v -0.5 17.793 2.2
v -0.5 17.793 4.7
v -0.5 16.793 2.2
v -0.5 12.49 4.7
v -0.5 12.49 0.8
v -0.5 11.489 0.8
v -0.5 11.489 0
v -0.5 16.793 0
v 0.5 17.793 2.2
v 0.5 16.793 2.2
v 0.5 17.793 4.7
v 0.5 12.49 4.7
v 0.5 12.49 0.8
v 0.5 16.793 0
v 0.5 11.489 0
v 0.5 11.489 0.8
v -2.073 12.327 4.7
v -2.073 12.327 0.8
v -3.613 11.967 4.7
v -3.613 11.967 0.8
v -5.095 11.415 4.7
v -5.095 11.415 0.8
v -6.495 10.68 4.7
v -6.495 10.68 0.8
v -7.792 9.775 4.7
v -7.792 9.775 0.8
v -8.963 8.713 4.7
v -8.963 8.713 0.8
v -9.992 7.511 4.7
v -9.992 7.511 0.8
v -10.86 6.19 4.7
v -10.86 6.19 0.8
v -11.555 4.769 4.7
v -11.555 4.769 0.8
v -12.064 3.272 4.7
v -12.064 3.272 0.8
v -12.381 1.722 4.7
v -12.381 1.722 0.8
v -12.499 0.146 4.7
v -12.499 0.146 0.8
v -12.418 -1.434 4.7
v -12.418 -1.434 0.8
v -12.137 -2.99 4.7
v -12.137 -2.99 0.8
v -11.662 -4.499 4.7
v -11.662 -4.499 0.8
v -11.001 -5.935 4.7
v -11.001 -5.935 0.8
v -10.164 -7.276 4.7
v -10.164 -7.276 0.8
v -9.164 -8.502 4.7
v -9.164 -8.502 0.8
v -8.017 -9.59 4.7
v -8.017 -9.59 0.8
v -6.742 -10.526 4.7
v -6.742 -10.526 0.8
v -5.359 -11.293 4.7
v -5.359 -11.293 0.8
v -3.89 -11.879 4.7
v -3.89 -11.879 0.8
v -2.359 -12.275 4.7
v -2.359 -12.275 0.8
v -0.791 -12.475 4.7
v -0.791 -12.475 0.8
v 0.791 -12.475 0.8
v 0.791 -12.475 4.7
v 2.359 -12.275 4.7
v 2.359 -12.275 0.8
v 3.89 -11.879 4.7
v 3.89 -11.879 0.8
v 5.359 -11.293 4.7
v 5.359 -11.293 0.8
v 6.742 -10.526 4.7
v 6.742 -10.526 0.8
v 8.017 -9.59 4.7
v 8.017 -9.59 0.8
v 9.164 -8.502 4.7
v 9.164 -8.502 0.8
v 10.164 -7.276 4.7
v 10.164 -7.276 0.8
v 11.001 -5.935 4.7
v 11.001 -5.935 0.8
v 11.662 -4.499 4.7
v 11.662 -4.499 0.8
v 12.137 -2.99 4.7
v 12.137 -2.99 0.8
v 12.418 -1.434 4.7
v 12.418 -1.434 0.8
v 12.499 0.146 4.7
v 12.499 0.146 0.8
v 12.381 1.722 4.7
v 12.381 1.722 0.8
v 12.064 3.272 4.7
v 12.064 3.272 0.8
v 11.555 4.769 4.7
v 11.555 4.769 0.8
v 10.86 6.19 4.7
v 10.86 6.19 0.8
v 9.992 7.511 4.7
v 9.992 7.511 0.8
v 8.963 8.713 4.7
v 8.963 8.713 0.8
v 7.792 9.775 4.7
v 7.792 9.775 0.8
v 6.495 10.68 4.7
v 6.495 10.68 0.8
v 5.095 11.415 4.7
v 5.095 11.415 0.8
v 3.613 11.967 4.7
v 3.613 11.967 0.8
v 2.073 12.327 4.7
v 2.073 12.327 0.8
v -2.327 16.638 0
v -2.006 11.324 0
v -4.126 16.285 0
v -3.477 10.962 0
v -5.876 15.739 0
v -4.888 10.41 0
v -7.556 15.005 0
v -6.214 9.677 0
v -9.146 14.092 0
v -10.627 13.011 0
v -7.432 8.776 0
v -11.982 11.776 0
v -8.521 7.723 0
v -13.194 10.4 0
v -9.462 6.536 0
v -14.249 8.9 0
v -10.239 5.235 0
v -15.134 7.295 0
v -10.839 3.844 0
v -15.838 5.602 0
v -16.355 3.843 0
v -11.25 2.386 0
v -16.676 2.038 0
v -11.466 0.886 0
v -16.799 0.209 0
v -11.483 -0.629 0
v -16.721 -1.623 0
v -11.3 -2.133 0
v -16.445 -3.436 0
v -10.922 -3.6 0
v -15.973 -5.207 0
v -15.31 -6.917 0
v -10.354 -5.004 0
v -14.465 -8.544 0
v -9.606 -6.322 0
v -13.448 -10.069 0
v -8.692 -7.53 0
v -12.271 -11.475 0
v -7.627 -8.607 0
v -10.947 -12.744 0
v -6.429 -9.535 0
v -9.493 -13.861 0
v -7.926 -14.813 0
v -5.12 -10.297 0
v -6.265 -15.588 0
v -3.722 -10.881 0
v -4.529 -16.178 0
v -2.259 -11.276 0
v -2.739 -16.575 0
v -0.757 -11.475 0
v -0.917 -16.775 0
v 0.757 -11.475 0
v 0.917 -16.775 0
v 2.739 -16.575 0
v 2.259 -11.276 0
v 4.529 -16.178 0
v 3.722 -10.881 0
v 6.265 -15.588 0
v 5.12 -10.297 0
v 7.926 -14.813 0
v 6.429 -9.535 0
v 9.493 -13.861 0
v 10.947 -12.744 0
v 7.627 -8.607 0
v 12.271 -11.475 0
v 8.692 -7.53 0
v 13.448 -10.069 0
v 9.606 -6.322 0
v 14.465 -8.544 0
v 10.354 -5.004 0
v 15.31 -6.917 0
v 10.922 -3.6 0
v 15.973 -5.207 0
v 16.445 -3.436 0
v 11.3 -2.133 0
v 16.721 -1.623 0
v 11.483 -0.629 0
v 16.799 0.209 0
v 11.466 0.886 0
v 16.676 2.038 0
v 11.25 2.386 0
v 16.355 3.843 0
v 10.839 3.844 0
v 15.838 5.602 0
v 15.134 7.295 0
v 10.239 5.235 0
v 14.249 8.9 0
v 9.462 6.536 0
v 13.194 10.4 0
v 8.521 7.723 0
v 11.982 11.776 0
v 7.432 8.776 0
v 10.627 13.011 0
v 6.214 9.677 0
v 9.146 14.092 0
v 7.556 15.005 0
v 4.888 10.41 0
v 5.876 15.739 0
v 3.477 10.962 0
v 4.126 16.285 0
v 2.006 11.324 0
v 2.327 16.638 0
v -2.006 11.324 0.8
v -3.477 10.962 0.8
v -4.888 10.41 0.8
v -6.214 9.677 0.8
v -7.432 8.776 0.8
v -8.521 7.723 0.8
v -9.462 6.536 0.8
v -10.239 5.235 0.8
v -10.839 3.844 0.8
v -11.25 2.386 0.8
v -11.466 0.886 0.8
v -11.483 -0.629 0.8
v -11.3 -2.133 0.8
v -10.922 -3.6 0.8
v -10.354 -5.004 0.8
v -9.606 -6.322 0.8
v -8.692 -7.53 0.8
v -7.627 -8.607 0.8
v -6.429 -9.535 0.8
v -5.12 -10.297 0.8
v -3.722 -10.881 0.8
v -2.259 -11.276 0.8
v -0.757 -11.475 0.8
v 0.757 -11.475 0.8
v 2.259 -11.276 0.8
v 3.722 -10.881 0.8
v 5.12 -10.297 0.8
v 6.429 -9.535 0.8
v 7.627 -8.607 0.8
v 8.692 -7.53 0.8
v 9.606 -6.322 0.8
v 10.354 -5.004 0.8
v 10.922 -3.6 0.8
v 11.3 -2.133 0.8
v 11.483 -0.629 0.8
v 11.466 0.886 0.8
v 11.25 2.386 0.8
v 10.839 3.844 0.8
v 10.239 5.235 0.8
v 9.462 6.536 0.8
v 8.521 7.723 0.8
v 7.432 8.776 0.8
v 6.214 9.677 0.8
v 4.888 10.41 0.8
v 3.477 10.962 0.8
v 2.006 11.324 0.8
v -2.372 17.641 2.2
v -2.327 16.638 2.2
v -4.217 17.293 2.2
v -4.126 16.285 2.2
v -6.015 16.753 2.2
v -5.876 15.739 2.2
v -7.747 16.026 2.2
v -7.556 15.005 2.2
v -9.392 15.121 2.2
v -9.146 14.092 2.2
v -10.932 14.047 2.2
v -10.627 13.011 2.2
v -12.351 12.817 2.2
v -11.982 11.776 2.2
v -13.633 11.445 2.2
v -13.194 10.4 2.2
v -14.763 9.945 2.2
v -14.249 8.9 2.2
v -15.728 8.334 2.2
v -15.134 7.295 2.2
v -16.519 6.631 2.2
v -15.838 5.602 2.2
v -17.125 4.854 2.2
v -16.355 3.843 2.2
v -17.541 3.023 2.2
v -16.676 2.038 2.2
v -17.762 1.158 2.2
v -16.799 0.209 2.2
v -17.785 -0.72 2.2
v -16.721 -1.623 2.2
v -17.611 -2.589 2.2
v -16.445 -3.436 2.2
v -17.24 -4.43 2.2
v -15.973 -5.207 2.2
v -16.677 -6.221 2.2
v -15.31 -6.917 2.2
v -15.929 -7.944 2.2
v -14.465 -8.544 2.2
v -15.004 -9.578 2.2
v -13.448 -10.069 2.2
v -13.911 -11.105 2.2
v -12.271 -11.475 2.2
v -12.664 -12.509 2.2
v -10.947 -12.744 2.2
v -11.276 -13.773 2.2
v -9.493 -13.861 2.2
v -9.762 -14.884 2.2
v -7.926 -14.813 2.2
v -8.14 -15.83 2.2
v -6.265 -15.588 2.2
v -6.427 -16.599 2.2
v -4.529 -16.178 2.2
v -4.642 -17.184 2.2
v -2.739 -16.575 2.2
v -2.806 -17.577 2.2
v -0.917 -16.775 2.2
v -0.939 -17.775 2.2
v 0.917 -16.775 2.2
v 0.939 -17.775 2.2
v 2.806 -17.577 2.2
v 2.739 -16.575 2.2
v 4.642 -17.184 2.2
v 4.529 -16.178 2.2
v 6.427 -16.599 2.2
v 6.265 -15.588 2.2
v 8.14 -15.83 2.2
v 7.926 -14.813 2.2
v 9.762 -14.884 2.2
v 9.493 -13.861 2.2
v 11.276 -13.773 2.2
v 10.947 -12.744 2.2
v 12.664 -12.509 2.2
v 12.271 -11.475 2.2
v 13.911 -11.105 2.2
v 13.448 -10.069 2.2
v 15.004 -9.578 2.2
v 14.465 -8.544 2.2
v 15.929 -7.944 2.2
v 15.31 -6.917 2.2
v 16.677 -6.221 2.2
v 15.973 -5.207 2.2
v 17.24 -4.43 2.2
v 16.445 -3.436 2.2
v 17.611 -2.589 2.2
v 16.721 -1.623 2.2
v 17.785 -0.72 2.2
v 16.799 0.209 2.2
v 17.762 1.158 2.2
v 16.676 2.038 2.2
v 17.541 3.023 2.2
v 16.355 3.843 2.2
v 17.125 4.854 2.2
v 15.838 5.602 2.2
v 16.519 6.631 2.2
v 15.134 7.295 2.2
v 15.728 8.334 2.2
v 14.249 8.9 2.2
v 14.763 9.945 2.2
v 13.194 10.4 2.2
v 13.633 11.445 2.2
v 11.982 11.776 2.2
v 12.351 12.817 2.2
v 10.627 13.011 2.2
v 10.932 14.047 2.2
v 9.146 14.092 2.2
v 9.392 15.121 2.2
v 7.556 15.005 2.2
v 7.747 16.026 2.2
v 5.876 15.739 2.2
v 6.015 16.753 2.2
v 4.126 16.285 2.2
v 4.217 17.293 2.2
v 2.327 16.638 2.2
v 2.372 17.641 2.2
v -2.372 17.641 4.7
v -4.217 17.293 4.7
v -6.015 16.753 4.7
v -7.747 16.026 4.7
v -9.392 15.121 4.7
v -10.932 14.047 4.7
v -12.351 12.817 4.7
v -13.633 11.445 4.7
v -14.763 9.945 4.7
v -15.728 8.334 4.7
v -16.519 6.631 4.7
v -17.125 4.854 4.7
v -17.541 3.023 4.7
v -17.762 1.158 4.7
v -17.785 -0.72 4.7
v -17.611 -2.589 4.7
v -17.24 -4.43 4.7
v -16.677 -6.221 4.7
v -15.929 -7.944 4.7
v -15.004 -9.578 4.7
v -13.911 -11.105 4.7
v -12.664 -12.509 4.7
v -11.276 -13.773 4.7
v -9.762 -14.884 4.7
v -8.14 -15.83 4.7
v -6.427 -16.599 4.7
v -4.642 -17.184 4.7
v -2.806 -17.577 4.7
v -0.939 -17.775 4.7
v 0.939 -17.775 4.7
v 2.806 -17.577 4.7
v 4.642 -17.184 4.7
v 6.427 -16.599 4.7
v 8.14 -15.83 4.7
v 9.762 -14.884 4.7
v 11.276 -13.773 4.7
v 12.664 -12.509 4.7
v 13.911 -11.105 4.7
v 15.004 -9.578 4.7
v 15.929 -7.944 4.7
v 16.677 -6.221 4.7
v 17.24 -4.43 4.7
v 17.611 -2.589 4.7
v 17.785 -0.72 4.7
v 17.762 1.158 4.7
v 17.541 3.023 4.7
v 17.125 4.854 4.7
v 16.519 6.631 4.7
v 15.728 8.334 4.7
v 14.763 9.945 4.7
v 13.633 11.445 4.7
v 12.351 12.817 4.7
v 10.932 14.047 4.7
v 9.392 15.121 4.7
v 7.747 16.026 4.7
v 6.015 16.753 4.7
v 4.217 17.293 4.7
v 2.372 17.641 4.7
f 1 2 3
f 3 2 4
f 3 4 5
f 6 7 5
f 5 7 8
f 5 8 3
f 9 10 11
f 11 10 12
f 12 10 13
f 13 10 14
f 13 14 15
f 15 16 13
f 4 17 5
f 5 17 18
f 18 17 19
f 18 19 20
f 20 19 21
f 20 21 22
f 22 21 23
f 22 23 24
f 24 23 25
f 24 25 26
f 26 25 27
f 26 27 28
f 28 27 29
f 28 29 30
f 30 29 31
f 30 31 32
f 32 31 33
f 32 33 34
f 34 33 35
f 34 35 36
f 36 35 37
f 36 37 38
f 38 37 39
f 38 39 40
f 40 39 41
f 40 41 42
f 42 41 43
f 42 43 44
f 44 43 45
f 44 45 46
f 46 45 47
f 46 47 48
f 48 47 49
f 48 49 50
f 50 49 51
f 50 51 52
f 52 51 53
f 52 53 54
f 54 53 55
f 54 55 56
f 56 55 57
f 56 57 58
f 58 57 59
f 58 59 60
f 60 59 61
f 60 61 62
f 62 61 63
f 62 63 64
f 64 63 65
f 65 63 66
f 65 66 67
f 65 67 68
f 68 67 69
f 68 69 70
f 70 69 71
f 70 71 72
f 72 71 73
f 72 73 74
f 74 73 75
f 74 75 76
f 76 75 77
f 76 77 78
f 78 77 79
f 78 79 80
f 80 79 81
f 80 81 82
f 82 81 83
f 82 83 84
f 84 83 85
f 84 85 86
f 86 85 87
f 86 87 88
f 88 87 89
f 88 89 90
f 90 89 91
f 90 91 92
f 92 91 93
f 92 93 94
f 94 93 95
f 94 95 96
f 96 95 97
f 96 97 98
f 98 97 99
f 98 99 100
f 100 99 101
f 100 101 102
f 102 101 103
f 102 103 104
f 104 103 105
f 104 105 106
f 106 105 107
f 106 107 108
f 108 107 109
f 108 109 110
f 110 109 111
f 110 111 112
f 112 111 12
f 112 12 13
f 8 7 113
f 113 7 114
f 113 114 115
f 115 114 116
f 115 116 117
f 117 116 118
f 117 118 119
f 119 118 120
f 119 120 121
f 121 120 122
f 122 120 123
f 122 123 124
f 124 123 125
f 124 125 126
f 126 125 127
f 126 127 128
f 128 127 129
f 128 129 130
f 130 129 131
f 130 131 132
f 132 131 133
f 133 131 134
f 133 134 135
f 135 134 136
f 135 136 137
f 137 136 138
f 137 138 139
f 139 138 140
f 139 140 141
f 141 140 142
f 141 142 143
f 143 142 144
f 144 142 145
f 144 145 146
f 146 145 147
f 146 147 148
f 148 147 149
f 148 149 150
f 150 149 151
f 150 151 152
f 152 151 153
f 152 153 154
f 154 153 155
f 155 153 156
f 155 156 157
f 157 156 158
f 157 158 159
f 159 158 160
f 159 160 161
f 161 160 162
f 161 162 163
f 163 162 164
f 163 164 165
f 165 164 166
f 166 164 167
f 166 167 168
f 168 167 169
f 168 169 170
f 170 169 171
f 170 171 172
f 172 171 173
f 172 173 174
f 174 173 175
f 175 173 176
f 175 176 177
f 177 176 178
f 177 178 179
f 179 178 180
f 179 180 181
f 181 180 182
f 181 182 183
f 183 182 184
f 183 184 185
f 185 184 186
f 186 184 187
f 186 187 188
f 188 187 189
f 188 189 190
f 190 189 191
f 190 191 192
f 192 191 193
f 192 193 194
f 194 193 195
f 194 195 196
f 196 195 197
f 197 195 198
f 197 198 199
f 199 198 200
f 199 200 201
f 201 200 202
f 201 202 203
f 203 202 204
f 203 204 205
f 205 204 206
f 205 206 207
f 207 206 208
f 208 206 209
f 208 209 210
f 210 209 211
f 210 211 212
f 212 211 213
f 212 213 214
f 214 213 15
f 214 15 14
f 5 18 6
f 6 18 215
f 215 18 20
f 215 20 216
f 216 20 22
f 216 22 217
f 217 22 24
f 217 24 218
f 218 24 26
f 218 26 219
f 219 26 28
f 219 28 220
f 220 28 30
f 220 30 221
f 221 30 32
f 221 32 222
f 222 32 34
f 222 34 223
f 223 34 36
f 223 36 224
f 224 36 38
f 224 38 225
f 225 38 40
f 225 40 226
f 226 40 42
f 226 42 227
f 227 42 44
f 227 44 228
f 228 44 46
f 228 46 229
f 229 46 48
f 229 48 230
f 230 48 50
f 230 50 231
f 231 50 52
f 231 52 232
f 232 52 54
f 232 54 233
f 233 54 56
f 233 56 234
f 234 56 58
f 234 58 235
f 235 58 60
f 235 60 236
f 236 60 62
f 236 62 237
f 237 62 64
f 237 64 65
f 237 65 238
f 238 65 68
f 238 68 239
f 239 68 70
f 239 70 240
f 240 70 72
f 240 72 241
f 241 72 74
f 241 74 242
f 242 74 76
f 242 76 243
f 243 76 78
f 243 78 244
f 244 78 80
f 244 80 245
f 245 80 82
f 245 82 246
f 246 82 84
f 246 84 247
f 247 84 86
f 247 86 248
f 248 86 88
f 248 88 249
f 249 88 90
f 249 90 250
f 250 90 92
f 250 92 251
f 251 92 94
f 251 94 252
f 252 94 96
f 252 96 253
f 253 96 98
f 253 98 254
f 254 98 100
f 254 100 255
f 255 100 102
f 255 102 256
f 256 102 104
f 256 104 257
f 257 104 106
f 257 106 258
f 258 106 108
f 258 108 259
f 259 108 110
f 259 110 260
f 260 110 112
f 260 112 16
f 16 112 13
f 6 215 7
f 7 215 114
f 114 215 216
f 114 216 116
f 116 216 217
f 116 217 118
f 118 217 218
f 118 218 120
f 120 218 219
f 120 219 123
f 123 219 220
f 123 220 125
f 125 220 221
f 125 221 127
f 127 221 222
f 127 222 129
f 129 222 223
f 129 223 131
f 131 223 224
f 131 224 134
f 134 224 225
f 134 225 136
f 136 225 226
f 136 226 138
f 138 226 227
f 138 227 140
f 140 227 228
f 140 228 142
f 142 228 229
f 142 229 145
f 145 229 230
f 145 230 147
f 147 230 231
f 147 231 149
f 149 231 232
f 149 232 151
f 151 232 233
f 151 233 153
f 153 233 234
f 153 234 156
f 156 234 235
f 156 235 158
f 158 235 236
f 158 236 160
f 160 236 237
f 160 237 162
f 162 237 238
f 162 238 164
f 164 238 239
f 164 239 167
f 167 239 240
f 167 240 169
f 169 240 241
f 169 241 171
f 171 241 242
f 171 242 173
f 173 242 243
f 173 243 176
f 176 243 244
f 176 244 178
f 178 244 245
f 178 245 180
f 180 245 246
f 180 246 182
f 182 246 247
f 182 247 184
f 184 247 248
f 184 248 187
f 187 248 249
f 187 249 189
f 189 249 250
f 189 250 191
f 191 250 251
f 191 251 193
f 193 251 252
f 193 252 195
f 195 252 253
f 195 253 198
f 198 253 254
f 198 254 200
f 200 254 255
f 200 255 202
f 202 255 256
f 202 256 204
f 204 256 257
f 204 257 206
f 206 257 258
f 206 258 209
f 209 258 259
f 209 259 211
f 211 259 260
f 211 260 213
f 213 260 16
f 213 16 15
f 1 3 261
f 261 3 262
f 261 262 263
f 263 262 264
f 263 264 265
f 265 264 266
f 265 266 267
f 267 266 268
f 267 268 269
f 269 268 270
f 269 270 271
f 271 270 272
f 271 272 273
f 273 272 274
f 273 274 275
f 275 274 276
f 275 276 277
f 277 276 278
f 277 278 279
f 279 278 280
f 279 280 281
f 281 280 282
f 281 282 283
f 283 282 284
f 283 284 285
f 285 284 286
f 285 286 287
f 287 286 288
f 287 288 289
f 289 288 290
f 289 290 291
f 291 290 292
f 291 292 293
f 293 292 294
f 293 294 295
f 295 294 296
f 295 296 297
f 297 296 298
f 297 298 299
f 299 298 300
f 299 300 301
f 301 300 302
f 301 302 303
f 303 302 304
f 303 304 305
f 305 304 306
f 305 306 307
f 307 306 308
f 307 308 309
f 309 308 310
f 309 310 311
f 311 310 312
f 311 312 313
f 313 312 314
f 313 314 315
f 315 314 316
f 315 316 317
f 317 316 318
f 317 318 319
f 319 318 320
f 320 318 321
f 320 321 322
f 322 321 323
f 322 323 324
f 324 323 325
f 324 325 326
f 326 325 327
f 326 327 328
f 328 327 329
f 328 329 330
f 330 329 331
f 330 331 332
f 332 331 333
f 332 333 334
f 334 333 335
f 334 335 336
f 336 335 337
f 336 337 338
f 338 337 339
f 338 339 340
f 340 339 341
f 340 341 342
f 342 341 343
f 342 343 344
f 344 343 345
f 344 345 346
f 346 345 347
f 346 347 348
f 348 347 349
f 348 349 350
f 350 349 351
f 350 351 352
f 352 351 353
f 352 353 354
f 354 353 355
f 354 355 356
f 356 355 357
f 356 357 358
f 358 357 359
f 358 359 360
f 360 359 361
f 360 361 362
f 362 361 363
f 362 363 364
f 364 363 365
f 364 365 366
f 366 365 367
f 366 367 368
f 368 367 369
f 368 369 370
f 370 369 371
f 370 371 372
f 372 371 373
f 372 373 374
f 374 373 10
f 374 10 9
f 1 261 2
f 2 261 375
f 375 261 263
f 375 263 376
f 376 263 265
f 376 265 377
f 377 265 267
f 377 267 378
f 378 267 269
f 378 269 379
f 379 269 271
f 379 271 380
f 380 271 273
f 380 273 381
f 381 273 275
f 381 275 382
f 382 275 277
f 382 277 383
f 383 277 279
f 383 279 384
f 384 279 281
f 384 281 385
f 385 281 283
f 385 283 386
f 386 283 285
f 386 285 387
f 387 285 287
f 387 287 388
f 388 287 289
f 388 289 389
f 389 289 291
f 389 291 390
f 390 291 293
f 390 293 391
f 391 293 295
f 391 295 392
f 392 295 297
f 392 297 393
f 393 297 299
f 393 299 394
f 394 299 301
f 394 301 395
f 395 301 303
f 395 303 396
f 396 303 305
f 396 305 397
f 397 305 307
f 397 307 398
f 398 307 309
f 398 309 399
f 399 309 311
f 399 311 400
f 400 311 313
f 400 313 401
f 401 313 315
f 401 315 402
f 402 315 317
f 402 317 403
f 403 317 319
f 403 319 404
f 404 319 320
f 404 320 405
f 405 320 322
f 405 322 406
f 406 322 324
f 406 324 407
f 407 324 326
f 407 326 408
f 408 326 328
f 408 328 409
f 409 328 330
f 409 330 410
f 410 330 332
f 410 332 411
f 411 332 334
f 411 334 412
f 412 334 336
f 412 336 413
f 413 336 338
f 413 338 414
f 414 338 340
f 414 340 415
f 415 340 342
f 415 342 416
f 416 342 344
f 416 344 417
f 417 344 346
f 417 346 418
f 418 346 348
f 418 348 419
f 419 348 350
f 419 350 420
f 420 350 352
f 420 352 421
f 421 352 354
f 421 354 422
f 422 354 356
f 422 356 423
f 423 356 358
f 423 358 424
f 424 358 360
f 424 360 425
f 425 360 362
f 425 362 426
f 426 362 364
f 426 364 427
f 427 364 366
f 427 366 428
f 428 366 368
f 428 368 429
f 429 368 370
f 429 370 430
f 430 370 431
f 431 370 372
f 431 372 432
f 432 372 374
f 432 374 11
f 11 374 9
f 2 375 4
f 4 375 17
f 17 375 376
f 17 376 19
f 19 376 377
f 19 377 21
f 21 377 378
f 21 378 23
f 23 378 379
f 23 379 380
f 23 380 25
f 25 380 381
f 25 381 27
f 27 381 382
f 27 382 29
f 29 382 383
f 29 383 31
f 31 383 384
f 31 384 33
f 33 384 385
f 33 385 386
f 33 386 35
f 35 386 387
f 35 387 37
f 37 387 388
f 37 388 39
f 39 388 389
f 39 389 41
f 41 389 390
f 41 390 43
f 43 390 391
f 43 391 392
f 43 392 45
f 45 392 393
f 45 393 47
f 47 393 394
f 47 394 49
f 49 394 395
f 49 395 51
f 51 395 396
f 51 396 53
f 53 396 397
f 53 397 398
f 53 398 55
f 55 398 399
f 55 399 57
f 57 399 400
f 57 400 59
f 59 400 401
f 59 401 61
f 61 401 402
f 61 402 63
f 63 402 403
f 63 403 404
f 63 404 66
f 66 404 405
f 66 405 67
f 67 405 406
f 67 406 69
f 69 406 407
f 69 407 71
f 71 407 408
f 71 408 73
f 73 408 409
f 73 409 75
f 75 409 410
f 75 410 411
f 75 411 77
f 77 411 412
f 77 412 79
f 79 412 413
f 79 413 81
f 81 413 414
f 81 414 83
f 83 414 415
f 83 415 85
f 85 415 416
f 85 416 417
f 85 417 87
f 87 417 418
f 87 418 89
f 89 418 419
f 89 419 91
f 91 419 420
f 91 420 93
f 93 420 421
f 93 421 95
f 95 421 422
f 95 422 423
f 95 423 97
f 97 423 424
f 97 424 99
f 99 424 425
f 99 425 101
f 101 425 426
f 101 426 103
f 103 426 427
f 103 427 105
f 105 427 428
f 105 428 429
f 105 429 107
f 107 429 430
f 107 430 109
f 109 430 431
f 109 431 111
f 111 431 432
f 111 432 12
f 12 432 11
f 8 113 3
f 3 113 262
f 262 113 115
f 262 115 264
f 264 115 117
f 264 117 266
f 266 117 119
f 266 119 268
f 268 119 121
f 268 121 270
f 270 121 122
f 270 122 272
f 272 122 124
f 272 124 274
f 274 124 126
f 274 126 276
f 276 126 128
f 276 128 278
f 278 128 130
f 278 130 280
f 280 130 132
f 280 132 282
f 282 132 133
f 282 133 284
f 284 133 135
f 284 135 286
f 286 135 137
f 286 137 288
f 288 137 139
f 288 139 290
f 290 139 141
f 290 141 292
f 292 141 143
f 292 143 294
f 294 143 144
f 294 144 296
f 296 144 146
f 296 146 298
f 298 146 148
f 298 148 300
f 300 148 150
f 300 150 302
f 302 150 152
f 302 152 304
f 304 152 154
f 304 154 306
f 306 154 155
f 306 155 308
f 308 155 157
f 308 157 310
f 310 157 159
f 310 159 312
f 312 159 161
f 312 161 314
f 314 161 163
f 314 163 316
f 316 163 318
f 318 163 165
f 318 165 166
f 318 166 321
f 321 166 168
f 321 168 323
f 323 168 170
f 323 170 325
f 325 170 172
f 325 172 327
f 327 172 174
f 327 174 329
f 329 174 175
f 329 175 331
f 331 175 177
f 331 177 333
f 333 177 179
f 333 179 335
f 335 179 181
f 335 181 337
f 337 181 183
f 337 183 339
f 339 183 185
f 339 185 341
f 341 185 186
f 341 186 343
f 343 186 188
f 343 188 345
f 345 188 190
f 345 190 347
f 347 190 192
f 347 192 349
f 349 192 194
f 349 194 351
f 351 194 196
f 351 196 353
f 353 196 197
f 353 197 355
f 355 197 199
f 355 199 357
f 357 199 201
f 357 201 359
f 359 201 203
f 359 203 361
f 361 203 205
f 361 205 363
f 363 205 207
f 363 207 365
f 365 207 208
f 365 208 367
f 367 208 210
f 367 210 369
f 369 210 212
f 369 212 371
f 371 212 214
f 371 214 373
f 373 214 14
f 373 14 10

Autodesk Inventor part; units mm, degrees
ref_plane "YZ Plane" through (0, 0, 0) normal (1, 0, 0) x (0, 1, 0)
ref_plane "XZ Plane" through (0, 0, 0) normal (0, 1, 0) x (-1, 0, 0)
ref_plane "XY Plane" through (0, 0, 0) normal (0, 0, 1) x (1, 0, 0)
sketch "Sketch1" plane through (0, 0, 0) normal (0, 0, 1) x (1, 0, 0)
  circle A0 centre (0, 0) radius 16.8
  circle A1 centre (0, 0) radius 11.5
  circle A2 centre (0, 0) radius 17.8
  circle A3 centre (0, 0) radius 12.5
  dimension "d0" = 33.6
  dimension "d1" = 23
  dimension "d2" = 35.6
  dimension "d3" = 25
extrude "Extrusion1" add sketch "Sketch1" along normal blind 0.8 contours A3
extrude "Extrusion2" add sketch "Sketch1" along normal blind 3.2 contours A0
sketch "Sketch2" plane through (0, 0, 3.2) normal (0, 0, 1) x (1, 0, 0)
  circle A0 centre (0, 0) radius 17.8 projected
  circle A1 centre (0, 0) radius 12.5 projected
extrude "Extrusion3" add sketch "Sketch2" along normal blind 1.5
extrude "Extrusion5" add sketch "Sketch2" against normal blind 1
sketch "Sketch3" plane through (0, 0, 4.7) normal (0, 0, 1) x (1, 0, 0)
  line L0 (0.5, 4.5) -> (-0.5, 4.5)
  line L1 (-0.5, 4.5) -> (-0.5, 20.5)
  line L2 (-0.5, 20.5) -> (0.5, 20.5)
  line L3 (0.5, 20.5) -> (0.5, 4.5)
  circle A0 centre (0, 0) radius 12.5 projected
  line L4 (0.5, 4.5) -> (-0.5, 20.5) construction
  line L5 (-0.5, 4.5) -> (0.5, 20.5) construction
  point P0 (0, 12.5)
  dimension "d10" = 1
  dimension "d11" = 16
extrude "Extrusion4" cut sketch "Sketch3" against normal blind 10 contours L0 L1 A0 L3 | A0 L1 L2 L3 picked at (0.0556, 7.1663)
properties part number "25to36mm-FilterAdapter"
